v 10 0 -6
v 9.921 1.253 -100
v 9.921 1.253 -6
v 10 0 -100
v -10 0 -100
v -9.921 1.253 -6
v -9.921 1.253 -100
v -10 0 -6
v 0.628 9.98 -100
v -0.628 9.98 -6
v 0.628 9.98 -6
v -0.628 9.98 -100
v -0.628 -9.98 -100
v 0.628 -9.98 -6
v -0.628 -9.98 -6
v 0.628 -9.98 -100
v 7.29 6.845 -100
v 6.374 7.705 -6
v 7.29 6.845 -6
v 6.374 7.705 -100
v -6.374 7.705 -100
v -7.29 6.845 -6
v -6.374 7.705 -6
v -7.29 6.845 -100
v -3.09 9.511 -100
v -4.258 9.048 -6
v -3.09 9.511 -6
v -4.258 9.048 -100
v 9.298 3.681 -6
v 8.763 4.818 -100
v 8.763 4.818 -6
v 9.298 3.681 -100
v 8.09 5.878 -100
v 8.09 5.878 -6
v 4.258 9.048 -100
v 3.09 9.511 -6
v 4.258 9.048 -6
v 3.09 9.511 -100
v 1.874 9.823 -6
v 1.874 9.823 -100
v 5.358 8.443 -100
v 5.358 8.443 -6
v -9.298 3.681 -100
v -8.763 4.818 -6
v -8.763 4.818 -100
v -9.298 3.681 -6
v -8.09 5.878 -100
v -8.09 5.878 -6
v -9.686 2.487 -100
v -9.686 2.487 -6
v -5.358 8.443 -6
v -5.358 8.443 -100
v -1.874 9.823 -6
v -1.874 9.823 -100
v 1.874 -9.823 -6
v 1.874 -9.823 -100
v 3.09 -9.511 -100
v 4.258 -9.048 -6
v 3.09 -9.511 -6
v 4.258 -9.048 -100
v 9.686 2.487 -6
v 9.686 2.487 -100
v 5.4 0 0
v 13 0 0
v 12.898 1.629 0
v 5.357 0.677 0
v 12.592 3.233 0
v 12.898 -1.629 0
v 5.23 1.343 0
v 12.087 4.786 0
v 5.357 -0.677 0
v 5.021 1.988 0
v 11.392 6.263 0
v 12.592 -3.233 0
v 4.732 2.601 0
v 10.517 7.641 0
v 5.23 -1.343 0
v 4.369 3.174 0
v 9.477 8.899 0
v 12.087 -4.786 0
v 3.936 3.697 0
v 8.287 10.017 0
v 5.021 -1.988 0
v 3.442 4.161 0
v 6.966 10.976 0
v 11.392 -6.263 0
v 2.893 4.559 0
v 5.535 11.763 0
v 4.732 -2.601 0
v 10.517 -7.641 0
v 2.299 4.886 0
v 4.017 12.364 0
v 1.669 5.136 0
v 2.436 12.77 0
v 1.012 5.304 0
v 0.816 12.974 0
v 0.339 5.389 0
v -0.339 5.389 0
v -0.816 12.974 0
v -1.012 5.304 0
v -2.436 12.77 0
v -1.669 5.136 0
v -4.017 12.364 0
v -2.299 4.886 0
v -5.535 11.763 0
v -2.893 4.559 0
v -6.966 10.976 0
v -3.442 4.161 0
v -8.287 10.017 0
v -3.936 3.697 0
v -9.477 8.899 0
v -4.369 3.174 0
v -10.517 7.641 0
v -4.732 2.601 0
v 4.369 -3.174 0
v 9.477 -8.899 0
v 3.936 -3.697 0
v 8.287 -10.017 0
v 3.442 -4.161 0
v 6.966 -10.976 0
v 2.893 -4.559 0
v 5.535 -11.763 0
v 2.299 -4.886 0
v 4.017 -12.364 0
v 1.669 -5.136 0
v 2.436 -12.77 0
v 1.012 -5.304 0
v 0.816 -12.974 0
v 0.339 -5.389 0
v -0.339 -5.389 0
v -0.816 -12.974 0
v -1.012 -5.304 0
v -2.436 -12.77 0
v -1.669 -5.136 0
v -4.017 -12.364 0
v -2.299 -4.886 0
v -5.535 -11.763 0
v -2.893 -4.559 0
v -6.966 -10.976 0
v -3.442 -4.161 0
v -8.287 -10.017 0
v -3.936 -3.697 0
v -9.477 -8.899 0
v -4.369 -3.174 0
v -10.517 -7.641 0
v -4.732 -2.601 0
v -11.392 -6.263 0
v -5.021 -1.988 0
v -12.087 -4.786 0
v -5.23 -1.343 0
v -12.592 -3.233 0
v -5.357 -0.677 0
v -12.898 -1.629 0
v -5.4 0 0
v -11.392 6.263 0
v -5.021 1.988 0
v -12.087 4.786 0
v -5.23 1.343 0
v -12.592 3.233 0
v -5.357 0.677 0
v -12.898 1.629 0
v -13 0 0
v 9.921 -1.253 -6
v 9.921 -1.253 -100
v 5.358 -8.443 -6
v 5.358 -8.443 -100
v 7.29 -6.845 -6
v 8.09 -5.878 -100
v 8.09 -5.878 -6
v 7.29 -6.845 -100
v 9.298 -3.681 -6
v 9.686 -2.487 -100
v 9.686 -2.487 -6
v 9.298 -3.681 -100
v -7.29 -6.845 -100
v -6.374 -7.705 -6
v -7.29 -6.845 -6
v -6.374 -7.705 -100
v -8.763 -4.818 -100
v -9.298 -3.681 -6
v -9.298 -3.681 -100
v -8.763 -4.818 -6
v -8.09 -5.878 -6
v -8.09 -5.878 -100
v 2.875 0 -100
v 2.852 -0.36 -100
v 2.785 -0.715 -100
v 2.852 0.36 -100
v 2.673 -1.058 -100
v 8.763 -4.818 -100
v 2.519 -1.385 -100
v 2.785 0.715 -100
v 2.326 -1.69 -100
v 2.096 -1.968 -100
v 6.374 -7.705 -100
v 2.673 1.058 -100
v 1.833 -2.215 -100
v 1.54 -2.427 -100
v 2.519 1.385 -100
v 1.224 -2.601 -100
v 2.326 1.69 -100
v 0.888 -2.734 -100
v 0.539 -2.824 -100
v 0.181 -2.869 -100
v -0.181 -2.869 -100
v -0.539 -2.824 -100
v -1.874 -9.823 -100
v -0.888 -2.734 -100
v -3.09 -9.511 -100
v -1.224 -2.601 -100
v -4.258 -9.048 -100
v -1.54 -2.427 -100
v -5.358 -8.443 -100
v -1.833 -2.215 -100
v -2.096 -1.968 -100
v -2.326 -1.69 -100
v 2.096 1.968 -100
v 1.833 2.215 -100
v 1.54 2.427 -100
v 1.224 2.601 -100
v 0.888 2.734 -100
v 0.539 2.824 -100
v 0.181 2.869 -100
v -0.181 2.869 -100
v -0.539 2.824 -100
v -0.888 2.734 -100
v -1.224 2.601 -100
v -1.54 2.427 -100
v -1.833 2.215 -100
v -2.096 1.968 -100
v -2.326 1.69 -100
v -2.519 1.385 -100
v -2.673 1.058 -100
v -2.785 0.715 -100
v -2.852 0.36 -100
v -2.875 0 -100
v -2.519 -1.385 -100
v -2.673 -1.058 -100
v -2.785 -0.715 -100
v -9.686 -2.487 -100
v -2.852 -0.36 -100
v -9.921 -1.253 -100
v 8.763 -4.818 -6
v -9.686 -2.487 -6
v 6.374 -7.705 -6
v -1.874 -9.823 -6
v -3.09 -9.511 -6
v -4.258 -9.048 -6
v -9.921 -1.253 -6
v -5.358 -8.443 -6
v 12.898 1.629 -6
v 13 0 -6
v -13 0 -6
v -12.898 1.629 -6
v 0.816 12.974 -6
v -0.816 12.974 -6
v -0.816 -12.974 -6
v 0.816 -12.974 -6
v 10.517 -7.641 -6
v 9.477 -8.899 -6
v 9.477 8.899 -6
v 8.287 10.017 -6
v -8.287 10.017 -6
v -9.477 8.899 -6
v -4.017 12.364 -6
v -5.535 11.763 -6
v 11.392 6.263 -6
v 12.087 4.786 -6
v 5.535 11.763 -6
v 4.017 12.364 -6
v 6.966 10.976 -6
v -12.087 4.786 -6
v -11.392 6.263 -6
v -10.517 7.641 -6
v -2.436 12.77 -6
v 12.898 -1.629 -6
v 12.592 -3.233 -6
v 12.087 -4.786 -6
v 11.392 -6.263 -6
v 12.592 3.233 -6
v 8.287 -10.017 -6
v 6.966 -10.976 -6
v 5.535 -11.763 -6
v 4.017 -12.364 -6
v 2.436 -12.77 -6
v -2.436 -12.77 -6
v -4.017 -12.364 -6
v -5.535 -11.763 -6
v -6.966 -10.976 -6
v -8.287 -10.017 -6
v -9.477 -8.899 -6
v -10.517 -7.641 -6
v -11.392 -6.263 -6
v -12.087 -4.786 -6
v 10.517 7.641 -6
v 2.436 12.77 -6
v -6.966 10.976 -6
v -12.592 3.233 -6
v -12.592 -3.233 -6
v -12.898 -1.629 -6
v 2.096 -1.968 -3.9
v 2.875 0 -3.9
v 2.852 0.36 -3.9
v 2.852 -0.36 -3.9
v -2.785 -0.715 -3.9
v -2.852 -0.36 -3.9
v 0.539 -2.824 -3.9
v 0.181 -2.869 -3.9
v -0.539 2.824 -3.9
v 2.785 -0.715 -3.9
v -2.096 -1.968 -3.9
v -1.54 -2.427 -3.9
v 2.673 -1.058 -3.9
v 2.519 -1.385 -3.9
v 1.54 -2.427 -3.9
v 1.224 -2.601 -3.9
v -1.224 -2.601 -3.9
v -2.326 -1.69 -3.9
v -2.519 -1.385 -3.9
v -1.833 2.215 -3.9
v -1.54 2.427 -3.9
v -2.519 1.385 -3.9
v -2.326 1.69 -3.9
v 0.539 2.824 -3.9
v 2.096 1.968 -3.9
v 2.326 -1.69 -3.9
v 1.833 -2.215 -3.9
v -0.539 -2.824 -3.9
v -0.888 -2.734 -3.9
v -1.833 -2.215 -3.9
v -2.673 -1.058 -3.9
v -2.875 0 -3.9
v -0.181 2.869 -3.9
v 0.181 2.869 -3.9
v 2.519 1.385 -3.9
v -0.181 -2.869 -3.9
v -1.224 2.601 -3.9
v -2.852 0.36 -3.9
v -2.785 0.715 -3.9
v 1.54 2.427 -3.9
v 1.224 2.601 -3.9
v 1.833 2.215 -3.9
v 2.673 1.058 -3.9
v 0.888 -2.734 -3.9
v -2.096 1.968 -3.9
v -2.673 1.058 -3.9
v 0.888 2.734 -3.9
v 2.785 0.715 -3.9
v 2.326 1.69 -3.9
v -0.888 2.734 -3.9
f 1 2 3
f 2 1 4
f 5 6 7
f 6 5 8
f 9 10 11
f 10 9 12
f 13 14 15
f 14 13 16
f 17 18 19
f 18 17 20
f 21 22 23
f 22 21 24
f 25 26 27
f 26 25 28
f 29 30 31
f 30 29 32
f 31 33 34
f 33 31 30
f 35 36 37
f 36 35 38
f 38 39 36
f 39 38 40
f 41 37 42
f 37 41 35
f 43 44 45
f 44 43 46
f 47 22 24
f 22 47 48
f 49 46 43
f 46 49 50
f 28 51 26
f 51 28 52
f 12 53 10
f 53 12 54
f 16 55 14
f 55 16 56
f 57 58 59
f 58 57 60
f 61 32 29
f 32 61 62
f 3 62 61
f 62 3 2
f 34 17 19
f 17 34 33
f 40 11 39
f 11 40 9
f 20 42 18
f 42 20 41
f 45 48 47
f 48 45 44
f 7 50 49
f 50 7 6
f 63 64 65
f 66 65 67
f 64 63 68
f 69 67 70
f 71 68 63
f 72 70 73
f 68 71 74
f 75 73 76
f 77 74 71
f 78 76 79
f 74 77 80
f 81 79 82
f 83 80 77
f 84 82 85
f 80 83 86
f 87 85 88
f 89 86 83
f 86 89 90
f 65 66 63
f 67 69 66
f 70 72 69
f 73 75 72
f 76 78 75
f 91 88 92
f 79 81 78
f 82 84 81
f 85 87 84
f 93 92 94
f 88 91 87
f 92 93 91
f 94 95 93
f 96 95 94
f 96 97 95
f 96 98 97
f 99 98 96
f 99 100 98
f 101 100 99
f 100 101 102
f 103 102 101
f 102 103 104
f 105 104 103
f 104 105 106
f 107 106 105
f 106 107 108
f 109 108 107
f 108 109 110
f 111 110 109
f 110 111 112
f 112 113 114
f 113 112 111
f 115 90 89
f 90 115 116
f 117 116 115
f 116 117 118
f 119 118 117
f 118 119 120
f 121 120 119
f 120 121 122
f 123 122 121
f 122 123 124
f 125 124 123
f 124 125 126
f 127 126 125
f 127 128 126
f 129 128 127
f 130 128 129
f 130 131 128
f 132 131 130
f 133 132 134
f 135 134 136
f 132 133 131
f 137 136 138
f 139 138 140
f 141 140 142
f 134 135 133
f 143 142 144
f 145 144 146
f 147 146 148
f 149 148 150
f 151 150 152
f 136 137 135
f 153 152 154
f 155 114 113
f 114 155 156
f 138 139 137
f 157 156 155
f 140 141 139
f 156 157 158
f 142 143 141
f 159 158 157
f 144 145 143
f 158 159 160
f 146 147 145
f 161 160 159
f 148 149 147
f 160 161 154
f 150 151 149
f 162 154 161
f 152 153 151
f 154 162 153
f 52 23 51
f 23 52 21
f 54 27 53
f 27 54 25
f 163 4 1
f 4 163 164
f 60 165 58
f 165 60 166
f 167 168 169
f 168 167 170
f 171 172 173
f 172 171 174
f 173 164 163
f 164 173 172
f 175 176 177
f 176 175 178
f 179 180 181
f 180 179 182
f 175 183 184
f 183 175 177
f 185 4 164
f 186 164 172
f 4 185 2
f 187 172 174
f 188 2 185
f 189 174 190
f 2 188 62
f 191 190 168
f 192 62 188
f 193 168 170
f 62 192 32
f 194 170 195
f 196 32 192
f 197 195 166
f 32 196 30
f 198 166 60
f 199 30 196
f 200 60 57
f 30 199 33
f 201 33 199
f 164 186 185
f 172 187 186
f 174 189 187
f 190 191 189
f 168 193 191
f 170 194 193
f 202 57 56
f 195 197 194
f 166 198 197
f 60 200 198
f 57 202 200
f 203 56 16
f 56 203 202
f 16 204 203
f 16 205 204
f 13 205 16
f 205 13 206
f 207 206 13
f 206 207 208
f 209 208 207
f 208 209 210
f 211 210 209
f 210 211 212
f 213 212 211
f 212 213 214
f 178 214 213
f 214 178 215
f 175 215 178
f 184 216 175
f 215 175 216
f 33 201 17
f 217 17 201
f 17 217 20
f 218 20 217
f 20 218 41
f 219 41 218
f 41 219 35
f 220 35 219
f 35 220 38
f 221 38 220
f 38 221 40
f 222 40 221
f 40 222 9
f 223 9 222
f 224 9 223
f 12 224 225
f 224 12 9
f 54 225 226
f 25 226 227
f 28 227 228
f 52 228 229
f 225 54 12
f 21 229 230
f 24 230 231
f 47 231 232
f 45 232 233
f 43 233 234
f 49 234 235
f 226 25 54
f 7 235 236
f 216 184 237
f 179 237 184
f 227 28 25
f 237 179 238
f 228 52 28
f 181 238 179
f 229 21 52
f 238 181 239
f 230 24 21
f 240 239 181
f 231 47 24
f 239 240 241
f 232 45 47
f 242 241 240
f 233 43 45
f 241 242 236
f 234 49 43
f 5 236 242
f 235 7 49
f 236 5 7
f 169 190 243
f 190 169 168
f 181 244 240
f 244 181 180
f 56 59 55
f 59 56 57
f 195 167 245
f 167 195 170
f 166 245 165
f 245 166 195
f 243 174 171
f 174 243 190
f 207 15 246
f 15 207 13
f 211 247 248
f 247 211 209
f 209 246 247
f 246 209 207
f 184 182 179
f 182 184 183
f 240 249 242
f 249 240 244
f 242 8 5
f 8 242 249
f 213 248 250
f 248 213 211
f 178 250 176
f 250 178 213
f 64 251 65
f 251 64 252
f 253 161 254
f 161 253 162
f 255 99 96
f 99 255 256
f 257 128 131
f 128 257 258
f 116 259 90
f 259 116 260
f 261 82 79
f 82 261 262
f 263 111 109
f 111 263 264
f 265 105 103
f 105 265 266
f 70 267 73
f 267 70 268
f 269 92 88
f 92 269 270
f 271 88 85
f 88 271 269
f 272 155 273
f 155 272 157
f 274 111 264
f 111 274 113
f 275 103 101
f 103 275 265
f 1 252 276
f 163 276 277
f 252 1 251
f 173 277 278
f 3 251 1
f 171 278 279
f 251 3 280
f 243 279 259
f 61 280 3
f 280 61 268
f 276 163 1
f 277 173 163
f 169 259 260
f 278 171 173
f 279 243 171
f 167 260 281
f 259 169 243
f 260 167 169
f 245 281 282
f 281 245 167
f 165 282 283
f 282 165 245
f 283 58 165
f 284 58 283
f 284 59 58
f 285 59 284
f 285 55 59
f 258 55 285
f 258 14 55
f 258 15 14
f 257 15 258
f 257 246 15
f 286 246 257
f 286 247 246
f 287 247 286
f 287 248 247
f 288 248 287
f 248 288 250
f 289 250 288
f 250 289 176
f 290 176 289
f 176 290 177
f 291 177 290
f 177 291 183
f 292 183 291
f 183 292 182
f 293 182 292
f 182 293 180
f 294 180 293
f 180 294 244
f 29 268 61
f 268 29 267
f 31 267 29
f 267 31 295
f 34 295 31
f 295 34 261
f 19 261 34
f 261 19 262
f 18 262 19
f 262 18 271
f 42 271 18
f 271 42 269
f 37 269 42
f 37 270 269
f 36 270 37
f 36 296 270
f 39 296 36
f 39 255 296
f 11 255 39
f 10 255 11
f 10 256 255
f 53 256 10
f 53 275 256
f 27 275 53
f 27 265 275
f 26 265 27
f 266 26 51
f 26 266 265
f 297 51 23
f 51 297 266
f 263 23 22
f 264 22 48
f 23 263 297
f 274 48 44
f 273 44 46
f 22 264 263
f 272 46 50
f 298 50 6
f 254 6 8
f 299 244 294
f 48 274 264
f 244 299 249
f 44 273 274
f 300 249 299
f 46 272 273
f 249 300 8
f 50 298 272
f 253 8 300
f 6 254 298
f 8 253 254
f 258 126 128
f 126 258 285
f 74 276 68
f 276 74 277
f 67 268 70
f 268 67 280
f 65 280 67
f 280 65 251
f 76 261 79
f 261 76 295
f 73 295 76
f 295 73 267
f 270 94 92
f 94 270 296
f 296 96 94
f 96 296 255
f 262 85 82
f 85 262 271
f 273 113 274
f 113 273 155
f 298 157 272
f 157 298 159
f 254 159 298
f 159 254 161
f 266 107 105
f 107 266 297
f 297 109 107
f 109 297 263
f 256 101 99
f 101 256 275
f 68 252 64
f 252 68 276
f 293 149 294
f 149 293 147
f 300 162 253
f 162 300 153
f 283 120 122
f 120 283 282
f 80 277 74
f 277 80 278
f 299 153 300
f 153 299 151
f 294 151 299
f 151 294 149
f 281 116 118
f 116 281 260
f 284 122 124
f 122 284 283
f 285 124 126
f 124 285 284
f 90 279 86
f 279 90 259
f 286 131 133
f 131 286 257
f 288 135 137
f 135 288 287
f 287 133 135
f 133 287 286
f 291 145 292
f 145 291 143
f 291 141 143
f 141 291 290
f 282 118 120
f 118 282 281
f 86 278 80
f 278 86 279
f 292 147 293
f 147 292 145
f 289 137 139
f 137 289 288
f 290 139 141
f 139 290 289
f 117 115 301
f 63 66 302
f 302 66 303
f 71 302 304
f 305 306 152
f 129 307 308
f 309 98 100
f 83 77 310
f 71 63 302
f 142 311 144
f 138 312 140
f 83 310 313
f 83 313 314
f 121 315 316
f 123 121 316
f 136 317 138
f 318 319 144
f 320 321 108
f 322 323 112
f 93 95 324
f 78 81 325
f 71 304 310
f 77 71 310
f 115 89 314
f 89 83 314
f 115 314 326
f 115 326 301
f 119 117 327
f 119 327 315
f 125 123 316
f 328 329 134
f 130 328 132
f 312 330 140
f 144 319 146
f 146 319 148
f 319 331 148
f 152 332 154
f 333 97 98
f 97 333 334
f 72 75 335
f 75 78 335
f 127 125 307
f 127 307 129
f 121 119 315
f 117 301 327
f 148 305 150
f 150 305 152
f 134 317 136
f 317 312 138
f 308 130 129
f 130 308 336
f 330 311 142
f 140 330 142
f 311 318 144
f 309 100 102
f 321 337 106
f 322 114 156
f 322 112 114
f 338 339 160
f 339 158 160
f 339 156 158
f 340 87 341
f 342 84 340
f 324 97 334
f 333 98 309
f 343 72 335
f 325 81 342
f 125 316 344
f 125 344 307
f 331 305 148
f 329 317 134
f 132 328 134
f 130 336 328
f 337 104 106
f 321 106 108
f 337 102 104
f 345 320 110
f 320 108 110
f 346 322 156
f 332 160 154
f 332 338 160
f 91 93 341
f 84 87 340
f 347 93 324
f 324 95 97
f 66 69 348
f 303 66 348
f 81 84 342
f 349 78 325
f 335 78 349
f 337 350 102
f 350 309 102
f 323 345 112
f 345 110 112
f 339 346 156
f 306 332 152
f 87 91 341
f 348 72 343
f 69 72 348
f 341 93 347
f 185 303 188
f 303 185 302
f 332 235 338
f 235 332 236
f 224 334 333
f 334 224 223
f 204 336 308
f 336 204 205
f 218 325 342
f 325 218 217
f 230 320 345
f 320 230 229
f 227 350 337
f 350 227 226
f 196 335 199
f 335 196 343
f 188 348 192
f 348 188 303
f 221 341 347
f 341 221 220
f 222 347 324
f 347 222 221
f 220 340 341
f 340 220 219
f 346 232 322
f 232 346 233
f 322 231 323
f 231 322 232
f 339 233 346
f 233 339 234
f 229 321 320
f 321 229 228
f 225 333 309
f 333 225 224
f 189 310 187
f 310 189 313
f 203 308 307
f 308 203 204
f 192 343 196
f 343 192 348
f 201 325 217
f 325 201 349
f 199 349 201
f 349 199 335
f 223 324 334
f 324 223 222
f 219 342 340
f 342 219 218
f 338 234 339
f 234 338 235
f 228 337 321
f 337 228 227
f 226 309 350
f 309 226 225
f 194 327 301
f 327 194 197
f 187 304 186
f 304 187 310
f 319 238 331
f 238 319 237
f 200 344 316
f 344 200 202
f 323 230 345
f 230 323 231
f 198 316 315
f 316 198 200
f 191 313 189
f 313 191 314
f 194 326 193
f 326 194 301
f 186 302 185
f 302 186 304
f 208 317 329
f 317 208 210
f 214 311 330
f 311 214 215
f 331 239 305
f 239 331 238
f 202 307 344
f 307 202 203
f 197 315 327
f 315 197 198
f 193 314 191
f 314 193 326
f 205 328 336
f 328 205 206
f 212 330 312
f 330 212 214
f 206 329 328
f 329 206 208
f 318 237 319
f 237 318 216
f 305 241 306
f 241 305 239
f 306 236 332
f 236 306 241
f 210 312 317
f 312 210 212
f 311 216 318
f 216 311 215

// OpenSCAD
$fn = 50;


difference() {
	union() {
		translate(v = [0, 0, -100.0000000000]) {
			cylinder(h = 100, r = 10.0000000000);
		}
		translate(v = [0, 0, -6.0000000000]) {
			cylinder(h = 6, r = 13.0000000000);
		}
	}
	union() {
		translate(v = [0, 0, 0]) {
			rotate(a = [0, 0, 0]) {
				difference() {
					union() {
						#translate(v = [0, 0, -100.0000000000]) {
							cylinder(h = 100, r = 2.6000000000);
						}
						#translate(v = [0, 0, -3.9000000000]) {
							cylinder(h = 3.9000000000, r1 = 2.8750000000, r2 = 5.4000000000);
						}
						#translate(v = [0, 0, -100.0000000000]) {
							cylinder(h = 100, r = 2.8750000000);
						}
						#translate(v = [0, 0, -100.0000000000]) {
							cylinder(h = 100, r = 2.6000000000);
						}
					}
					union();
				}
			}
		}
	}
}
